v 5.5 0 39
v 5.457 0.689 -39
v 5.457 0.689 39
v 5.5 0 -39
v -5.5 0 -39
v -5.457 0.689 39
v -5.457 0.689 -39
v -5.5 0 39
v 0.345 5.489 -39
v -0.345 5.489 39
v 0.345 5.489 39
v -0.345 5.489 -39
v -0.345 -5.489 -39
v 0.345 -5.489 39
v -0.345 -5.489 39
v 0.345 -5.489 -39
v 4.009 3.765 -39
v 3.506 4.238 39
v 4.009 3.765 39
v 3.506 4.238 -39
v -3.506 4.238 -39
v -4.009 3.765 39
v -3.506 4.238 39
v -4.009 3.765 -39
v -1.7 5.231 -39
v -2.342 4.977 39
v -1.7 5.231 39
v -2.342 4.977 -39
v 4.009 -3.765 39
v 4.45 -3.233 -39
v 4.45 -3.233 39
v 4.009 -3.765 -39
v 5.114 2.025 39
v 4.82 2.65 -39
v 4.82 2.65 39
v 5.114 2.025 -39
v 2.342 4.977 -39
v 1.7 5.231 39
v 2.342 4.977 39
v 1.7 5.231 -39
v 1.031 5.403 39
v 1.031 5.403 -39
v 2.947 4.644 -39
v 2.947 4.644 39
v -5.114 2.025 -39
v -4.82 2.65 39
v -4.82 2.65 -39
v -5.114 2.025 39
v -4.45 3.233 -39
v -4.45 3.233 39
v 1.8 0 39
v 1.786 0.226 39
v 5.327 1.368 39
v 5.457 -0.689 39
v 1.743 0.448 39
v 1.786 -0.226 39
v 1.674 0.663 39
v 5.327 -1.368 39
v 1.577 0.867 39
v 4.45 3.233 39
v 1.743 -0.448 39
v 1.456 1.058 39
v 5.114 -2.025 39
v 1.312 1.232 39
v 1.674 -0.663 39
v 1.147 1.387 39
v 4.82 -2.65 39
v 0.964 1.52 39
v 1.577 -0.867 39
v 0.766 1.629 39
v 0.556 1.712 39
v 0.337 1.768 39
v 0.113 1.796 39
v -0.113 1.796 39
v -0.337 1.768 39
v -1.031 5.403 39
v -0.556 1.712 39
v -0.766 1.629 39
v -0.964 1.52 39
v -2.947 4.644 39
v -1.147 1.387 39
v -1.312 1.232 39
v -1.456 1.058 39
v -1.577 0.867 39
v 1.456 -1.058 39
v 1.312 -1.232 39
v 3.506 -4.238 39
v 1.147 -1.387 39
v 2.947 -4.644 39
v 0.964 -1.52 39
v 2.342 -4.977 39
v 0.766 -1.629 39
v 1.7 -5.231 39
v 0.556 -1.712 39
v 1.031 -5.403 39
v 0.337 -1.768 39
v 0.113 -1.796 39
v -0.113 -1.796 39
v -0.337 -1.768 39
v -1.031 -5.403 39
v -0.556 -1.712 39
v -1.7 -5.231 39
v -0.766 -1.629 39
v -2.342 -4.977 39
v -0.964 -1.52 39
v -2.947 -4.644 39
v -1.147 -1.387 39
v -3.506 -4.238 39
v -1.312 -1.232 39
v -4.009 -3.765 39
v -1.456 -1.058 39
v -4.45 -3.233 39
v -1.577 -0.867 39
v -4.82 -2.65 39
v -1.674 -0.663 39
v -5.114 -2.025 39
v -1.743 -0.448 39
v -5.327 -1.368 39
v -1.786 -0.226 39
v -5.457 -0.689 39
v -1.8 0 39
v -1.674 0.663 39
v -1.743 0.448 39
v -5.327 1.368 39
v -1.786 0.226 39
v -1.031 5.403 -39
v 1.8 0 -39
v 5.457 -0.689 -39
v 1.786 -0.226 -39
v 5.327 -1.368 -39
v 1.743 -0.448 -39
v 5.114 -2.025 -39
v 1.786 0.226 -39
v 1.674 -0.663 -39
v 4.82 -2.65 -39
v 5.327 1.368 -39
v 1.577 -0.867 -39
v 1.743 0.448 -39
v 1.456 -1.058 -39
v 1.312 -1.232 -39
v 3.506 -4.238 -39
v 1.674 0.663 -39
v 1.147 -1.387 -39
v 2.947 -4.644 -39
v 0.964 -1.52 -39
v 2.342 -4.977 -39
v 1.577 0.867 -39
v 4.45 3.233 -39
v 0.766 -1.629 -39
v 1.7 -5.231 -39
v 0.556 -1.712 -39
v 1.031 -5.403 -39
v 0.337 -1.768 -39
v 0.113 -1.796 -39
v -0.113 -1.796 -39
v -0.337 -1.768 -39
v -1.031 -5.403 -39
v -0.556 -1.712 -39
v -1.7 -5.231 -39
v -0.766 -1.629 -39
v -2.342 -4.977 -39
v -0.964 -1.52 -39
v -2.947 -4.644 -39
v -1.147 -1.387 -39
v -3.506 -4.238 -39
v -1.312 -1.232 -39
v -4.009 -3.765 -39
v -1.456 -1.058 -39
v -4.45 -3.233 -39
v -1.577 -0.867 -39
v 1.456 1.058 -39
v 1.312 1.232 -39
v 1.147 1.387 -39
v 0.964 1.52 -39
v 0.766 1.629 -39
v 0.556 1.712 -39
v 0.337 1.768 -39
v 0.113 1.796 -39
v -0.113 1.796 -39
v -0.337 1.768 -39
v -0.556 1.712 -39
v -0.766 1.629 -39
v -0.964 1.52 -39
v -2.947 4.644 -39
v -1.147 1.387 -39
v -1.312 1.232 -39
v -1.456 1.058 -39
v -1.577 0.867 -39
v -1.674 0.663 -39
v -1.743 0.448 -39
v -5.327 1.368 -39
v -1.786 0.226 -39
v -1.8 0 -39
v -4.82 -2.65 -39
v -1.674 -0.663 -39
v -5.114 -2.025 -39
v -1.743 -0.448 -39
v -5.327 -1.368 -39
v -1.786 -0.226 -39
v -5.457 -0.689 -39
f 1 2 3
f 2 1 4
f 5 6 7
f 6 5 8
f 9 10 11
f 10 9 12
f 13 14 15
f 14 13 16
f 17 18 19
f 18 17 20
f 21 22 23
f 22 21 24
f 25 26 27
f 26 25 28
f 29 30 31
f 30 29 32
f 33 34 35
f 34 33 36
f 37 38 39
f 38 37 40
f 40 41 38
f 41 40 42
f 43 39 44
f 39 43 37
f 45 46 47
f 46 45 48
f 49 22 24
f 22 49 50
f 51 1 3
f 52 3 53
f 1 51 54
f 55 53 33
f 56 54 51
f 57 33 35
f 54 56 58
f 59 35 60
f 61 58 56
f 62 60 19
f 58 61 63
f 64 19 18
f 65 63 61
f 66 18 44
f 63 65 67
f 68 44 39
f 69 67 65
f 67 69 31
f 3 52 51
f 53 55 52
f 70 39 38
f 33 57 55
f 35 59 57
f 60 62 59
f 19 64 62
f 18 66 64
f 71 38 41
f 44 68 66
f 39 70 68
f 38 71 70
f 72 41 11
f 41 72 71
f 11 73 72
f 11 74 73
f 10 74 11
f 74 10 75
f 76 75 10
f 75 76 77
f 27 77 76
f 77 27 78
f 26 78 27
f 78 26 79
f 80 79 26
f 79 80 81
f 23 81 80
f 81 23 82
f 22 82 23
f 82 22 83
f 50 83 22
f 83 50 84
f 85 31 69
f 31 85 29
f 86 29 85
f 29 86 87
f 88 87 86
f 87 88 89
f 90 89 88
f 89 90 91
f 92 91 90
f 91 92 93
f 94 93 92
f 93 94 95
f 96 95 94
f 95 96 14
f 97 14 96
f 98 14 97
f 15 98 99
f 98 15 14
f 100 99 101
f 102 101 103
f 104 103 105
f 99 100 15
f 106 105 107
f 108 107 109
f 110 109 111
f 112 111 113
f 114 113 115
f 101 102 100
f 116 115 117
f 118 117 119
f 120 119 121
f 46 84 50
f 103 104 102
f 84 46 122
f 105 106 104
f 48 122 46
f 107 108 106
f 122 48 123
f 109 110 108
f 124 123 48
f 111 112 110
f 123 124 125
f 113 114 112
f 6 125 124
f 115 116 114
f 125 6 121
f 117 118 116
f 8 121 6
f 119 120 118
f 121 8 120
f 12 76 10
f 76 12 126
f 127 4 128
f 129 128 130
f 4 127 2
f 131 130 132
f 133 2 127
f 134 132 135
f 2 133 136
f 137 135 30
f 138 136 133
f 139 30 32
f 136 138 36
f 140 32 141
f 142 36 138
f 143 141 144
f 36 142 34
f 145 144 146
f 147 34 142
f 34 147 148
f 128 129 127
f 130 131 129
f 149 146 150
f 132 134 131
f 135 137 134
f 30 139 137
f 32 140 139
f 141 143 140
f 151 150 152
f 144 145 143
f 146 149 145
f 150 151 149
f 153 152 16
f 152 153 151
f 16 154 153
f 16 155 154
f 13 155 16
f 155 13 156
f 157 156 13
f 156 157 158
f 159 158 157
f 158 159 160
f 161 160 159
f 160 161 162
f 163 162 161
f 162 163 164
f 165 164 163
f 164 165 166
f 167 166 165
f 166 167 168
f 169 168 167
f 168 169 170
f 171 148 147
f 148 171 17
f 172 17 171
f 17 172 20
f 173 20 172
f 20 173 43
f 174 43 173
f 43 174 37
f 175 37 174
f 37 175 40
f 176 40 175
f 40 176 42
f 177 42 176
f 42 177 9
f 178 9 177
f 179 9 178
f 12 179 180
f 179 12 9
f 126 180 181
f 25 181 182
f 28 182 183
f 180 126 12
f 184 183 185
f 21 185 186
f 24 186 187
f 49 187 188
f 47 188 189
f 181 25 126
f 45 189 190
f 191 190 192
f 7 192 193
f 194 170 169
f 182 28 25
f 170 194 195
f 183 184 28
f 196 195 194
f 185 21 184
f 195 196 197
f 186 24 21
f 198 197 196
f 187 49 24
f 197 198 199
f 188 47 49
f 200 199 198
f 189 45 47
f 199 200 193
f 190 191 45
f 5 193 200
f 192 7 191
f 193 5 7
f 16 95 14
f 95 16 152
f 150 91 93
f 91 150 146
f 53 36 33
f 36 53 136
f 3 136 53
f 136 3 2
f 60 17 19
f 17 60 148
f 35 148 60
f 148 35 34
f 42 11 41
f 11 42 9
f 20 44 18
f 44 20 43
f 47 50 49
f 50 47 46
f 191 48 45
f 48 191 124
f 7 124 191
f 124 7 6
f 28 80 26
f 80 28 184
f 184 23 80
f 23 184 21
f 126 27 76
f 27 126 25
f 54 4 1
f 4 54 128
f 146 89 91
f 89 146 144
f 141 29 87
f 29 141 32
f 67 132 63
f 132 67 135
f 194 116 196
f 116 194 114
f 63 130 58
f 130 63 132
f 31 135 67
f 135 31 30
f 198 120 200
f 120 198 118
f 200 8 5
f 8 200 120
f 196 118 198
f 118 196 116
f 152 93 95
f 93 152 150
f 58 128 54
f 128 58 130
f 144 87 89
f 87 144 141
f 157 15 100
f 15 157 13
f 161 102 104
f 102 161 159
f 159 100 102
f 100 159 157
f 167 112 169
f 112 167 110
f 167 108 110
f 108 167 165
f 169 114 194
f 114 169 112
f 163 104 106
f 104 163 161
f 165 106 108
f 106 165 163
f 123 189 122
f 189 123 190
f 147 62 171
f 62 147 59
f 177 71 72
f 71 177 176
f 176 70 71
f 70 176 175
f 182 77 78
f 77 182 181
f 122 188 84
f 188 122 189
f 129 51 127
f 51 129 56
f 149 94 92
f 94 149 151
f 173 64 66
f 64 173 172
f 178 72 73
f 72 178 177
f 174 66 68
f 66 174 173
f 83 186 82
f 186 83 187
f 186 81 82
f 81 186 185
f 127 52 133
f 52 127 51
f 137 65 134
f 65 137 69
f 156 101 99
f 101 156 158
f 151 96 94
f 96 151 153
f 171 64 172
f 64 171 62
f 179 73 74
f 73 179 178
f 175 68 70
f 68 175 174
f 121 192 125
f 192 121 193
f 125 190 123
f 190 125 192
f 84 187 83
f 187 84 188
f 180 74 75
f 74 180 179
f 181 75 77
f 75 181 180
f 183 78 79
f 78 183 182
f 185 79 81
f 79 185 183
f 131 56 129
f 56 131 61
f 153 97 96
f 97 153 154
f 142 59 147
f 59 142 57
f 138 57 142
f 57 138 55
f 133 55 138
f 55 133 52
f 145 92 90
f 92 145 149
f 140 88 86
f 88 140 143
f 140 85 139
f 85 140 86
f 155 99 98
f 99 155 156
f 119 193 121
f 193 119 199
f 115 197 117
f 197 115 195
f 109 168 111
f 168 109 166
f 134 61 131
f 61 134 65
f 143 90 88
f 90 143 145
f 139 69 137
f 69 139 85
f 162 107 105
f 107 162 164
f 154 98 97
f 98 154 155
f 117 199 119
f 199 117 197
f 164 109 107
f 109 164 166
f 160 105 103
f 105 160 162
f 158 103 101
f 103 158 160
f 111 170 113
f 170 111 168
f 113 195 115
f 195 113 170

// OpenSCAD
$fn = 50;


difference() {
	union() {
		translate(v = [0, 0, -39.0000000000]) {
			cylinder(h = 78, r = 5.5000000000);
		}
	}
	union() {
		translate(v = [0, 0, -100.0000000000]) {
			cylinder(h = 200, r = 1.8000000000);
		}
	}
}
